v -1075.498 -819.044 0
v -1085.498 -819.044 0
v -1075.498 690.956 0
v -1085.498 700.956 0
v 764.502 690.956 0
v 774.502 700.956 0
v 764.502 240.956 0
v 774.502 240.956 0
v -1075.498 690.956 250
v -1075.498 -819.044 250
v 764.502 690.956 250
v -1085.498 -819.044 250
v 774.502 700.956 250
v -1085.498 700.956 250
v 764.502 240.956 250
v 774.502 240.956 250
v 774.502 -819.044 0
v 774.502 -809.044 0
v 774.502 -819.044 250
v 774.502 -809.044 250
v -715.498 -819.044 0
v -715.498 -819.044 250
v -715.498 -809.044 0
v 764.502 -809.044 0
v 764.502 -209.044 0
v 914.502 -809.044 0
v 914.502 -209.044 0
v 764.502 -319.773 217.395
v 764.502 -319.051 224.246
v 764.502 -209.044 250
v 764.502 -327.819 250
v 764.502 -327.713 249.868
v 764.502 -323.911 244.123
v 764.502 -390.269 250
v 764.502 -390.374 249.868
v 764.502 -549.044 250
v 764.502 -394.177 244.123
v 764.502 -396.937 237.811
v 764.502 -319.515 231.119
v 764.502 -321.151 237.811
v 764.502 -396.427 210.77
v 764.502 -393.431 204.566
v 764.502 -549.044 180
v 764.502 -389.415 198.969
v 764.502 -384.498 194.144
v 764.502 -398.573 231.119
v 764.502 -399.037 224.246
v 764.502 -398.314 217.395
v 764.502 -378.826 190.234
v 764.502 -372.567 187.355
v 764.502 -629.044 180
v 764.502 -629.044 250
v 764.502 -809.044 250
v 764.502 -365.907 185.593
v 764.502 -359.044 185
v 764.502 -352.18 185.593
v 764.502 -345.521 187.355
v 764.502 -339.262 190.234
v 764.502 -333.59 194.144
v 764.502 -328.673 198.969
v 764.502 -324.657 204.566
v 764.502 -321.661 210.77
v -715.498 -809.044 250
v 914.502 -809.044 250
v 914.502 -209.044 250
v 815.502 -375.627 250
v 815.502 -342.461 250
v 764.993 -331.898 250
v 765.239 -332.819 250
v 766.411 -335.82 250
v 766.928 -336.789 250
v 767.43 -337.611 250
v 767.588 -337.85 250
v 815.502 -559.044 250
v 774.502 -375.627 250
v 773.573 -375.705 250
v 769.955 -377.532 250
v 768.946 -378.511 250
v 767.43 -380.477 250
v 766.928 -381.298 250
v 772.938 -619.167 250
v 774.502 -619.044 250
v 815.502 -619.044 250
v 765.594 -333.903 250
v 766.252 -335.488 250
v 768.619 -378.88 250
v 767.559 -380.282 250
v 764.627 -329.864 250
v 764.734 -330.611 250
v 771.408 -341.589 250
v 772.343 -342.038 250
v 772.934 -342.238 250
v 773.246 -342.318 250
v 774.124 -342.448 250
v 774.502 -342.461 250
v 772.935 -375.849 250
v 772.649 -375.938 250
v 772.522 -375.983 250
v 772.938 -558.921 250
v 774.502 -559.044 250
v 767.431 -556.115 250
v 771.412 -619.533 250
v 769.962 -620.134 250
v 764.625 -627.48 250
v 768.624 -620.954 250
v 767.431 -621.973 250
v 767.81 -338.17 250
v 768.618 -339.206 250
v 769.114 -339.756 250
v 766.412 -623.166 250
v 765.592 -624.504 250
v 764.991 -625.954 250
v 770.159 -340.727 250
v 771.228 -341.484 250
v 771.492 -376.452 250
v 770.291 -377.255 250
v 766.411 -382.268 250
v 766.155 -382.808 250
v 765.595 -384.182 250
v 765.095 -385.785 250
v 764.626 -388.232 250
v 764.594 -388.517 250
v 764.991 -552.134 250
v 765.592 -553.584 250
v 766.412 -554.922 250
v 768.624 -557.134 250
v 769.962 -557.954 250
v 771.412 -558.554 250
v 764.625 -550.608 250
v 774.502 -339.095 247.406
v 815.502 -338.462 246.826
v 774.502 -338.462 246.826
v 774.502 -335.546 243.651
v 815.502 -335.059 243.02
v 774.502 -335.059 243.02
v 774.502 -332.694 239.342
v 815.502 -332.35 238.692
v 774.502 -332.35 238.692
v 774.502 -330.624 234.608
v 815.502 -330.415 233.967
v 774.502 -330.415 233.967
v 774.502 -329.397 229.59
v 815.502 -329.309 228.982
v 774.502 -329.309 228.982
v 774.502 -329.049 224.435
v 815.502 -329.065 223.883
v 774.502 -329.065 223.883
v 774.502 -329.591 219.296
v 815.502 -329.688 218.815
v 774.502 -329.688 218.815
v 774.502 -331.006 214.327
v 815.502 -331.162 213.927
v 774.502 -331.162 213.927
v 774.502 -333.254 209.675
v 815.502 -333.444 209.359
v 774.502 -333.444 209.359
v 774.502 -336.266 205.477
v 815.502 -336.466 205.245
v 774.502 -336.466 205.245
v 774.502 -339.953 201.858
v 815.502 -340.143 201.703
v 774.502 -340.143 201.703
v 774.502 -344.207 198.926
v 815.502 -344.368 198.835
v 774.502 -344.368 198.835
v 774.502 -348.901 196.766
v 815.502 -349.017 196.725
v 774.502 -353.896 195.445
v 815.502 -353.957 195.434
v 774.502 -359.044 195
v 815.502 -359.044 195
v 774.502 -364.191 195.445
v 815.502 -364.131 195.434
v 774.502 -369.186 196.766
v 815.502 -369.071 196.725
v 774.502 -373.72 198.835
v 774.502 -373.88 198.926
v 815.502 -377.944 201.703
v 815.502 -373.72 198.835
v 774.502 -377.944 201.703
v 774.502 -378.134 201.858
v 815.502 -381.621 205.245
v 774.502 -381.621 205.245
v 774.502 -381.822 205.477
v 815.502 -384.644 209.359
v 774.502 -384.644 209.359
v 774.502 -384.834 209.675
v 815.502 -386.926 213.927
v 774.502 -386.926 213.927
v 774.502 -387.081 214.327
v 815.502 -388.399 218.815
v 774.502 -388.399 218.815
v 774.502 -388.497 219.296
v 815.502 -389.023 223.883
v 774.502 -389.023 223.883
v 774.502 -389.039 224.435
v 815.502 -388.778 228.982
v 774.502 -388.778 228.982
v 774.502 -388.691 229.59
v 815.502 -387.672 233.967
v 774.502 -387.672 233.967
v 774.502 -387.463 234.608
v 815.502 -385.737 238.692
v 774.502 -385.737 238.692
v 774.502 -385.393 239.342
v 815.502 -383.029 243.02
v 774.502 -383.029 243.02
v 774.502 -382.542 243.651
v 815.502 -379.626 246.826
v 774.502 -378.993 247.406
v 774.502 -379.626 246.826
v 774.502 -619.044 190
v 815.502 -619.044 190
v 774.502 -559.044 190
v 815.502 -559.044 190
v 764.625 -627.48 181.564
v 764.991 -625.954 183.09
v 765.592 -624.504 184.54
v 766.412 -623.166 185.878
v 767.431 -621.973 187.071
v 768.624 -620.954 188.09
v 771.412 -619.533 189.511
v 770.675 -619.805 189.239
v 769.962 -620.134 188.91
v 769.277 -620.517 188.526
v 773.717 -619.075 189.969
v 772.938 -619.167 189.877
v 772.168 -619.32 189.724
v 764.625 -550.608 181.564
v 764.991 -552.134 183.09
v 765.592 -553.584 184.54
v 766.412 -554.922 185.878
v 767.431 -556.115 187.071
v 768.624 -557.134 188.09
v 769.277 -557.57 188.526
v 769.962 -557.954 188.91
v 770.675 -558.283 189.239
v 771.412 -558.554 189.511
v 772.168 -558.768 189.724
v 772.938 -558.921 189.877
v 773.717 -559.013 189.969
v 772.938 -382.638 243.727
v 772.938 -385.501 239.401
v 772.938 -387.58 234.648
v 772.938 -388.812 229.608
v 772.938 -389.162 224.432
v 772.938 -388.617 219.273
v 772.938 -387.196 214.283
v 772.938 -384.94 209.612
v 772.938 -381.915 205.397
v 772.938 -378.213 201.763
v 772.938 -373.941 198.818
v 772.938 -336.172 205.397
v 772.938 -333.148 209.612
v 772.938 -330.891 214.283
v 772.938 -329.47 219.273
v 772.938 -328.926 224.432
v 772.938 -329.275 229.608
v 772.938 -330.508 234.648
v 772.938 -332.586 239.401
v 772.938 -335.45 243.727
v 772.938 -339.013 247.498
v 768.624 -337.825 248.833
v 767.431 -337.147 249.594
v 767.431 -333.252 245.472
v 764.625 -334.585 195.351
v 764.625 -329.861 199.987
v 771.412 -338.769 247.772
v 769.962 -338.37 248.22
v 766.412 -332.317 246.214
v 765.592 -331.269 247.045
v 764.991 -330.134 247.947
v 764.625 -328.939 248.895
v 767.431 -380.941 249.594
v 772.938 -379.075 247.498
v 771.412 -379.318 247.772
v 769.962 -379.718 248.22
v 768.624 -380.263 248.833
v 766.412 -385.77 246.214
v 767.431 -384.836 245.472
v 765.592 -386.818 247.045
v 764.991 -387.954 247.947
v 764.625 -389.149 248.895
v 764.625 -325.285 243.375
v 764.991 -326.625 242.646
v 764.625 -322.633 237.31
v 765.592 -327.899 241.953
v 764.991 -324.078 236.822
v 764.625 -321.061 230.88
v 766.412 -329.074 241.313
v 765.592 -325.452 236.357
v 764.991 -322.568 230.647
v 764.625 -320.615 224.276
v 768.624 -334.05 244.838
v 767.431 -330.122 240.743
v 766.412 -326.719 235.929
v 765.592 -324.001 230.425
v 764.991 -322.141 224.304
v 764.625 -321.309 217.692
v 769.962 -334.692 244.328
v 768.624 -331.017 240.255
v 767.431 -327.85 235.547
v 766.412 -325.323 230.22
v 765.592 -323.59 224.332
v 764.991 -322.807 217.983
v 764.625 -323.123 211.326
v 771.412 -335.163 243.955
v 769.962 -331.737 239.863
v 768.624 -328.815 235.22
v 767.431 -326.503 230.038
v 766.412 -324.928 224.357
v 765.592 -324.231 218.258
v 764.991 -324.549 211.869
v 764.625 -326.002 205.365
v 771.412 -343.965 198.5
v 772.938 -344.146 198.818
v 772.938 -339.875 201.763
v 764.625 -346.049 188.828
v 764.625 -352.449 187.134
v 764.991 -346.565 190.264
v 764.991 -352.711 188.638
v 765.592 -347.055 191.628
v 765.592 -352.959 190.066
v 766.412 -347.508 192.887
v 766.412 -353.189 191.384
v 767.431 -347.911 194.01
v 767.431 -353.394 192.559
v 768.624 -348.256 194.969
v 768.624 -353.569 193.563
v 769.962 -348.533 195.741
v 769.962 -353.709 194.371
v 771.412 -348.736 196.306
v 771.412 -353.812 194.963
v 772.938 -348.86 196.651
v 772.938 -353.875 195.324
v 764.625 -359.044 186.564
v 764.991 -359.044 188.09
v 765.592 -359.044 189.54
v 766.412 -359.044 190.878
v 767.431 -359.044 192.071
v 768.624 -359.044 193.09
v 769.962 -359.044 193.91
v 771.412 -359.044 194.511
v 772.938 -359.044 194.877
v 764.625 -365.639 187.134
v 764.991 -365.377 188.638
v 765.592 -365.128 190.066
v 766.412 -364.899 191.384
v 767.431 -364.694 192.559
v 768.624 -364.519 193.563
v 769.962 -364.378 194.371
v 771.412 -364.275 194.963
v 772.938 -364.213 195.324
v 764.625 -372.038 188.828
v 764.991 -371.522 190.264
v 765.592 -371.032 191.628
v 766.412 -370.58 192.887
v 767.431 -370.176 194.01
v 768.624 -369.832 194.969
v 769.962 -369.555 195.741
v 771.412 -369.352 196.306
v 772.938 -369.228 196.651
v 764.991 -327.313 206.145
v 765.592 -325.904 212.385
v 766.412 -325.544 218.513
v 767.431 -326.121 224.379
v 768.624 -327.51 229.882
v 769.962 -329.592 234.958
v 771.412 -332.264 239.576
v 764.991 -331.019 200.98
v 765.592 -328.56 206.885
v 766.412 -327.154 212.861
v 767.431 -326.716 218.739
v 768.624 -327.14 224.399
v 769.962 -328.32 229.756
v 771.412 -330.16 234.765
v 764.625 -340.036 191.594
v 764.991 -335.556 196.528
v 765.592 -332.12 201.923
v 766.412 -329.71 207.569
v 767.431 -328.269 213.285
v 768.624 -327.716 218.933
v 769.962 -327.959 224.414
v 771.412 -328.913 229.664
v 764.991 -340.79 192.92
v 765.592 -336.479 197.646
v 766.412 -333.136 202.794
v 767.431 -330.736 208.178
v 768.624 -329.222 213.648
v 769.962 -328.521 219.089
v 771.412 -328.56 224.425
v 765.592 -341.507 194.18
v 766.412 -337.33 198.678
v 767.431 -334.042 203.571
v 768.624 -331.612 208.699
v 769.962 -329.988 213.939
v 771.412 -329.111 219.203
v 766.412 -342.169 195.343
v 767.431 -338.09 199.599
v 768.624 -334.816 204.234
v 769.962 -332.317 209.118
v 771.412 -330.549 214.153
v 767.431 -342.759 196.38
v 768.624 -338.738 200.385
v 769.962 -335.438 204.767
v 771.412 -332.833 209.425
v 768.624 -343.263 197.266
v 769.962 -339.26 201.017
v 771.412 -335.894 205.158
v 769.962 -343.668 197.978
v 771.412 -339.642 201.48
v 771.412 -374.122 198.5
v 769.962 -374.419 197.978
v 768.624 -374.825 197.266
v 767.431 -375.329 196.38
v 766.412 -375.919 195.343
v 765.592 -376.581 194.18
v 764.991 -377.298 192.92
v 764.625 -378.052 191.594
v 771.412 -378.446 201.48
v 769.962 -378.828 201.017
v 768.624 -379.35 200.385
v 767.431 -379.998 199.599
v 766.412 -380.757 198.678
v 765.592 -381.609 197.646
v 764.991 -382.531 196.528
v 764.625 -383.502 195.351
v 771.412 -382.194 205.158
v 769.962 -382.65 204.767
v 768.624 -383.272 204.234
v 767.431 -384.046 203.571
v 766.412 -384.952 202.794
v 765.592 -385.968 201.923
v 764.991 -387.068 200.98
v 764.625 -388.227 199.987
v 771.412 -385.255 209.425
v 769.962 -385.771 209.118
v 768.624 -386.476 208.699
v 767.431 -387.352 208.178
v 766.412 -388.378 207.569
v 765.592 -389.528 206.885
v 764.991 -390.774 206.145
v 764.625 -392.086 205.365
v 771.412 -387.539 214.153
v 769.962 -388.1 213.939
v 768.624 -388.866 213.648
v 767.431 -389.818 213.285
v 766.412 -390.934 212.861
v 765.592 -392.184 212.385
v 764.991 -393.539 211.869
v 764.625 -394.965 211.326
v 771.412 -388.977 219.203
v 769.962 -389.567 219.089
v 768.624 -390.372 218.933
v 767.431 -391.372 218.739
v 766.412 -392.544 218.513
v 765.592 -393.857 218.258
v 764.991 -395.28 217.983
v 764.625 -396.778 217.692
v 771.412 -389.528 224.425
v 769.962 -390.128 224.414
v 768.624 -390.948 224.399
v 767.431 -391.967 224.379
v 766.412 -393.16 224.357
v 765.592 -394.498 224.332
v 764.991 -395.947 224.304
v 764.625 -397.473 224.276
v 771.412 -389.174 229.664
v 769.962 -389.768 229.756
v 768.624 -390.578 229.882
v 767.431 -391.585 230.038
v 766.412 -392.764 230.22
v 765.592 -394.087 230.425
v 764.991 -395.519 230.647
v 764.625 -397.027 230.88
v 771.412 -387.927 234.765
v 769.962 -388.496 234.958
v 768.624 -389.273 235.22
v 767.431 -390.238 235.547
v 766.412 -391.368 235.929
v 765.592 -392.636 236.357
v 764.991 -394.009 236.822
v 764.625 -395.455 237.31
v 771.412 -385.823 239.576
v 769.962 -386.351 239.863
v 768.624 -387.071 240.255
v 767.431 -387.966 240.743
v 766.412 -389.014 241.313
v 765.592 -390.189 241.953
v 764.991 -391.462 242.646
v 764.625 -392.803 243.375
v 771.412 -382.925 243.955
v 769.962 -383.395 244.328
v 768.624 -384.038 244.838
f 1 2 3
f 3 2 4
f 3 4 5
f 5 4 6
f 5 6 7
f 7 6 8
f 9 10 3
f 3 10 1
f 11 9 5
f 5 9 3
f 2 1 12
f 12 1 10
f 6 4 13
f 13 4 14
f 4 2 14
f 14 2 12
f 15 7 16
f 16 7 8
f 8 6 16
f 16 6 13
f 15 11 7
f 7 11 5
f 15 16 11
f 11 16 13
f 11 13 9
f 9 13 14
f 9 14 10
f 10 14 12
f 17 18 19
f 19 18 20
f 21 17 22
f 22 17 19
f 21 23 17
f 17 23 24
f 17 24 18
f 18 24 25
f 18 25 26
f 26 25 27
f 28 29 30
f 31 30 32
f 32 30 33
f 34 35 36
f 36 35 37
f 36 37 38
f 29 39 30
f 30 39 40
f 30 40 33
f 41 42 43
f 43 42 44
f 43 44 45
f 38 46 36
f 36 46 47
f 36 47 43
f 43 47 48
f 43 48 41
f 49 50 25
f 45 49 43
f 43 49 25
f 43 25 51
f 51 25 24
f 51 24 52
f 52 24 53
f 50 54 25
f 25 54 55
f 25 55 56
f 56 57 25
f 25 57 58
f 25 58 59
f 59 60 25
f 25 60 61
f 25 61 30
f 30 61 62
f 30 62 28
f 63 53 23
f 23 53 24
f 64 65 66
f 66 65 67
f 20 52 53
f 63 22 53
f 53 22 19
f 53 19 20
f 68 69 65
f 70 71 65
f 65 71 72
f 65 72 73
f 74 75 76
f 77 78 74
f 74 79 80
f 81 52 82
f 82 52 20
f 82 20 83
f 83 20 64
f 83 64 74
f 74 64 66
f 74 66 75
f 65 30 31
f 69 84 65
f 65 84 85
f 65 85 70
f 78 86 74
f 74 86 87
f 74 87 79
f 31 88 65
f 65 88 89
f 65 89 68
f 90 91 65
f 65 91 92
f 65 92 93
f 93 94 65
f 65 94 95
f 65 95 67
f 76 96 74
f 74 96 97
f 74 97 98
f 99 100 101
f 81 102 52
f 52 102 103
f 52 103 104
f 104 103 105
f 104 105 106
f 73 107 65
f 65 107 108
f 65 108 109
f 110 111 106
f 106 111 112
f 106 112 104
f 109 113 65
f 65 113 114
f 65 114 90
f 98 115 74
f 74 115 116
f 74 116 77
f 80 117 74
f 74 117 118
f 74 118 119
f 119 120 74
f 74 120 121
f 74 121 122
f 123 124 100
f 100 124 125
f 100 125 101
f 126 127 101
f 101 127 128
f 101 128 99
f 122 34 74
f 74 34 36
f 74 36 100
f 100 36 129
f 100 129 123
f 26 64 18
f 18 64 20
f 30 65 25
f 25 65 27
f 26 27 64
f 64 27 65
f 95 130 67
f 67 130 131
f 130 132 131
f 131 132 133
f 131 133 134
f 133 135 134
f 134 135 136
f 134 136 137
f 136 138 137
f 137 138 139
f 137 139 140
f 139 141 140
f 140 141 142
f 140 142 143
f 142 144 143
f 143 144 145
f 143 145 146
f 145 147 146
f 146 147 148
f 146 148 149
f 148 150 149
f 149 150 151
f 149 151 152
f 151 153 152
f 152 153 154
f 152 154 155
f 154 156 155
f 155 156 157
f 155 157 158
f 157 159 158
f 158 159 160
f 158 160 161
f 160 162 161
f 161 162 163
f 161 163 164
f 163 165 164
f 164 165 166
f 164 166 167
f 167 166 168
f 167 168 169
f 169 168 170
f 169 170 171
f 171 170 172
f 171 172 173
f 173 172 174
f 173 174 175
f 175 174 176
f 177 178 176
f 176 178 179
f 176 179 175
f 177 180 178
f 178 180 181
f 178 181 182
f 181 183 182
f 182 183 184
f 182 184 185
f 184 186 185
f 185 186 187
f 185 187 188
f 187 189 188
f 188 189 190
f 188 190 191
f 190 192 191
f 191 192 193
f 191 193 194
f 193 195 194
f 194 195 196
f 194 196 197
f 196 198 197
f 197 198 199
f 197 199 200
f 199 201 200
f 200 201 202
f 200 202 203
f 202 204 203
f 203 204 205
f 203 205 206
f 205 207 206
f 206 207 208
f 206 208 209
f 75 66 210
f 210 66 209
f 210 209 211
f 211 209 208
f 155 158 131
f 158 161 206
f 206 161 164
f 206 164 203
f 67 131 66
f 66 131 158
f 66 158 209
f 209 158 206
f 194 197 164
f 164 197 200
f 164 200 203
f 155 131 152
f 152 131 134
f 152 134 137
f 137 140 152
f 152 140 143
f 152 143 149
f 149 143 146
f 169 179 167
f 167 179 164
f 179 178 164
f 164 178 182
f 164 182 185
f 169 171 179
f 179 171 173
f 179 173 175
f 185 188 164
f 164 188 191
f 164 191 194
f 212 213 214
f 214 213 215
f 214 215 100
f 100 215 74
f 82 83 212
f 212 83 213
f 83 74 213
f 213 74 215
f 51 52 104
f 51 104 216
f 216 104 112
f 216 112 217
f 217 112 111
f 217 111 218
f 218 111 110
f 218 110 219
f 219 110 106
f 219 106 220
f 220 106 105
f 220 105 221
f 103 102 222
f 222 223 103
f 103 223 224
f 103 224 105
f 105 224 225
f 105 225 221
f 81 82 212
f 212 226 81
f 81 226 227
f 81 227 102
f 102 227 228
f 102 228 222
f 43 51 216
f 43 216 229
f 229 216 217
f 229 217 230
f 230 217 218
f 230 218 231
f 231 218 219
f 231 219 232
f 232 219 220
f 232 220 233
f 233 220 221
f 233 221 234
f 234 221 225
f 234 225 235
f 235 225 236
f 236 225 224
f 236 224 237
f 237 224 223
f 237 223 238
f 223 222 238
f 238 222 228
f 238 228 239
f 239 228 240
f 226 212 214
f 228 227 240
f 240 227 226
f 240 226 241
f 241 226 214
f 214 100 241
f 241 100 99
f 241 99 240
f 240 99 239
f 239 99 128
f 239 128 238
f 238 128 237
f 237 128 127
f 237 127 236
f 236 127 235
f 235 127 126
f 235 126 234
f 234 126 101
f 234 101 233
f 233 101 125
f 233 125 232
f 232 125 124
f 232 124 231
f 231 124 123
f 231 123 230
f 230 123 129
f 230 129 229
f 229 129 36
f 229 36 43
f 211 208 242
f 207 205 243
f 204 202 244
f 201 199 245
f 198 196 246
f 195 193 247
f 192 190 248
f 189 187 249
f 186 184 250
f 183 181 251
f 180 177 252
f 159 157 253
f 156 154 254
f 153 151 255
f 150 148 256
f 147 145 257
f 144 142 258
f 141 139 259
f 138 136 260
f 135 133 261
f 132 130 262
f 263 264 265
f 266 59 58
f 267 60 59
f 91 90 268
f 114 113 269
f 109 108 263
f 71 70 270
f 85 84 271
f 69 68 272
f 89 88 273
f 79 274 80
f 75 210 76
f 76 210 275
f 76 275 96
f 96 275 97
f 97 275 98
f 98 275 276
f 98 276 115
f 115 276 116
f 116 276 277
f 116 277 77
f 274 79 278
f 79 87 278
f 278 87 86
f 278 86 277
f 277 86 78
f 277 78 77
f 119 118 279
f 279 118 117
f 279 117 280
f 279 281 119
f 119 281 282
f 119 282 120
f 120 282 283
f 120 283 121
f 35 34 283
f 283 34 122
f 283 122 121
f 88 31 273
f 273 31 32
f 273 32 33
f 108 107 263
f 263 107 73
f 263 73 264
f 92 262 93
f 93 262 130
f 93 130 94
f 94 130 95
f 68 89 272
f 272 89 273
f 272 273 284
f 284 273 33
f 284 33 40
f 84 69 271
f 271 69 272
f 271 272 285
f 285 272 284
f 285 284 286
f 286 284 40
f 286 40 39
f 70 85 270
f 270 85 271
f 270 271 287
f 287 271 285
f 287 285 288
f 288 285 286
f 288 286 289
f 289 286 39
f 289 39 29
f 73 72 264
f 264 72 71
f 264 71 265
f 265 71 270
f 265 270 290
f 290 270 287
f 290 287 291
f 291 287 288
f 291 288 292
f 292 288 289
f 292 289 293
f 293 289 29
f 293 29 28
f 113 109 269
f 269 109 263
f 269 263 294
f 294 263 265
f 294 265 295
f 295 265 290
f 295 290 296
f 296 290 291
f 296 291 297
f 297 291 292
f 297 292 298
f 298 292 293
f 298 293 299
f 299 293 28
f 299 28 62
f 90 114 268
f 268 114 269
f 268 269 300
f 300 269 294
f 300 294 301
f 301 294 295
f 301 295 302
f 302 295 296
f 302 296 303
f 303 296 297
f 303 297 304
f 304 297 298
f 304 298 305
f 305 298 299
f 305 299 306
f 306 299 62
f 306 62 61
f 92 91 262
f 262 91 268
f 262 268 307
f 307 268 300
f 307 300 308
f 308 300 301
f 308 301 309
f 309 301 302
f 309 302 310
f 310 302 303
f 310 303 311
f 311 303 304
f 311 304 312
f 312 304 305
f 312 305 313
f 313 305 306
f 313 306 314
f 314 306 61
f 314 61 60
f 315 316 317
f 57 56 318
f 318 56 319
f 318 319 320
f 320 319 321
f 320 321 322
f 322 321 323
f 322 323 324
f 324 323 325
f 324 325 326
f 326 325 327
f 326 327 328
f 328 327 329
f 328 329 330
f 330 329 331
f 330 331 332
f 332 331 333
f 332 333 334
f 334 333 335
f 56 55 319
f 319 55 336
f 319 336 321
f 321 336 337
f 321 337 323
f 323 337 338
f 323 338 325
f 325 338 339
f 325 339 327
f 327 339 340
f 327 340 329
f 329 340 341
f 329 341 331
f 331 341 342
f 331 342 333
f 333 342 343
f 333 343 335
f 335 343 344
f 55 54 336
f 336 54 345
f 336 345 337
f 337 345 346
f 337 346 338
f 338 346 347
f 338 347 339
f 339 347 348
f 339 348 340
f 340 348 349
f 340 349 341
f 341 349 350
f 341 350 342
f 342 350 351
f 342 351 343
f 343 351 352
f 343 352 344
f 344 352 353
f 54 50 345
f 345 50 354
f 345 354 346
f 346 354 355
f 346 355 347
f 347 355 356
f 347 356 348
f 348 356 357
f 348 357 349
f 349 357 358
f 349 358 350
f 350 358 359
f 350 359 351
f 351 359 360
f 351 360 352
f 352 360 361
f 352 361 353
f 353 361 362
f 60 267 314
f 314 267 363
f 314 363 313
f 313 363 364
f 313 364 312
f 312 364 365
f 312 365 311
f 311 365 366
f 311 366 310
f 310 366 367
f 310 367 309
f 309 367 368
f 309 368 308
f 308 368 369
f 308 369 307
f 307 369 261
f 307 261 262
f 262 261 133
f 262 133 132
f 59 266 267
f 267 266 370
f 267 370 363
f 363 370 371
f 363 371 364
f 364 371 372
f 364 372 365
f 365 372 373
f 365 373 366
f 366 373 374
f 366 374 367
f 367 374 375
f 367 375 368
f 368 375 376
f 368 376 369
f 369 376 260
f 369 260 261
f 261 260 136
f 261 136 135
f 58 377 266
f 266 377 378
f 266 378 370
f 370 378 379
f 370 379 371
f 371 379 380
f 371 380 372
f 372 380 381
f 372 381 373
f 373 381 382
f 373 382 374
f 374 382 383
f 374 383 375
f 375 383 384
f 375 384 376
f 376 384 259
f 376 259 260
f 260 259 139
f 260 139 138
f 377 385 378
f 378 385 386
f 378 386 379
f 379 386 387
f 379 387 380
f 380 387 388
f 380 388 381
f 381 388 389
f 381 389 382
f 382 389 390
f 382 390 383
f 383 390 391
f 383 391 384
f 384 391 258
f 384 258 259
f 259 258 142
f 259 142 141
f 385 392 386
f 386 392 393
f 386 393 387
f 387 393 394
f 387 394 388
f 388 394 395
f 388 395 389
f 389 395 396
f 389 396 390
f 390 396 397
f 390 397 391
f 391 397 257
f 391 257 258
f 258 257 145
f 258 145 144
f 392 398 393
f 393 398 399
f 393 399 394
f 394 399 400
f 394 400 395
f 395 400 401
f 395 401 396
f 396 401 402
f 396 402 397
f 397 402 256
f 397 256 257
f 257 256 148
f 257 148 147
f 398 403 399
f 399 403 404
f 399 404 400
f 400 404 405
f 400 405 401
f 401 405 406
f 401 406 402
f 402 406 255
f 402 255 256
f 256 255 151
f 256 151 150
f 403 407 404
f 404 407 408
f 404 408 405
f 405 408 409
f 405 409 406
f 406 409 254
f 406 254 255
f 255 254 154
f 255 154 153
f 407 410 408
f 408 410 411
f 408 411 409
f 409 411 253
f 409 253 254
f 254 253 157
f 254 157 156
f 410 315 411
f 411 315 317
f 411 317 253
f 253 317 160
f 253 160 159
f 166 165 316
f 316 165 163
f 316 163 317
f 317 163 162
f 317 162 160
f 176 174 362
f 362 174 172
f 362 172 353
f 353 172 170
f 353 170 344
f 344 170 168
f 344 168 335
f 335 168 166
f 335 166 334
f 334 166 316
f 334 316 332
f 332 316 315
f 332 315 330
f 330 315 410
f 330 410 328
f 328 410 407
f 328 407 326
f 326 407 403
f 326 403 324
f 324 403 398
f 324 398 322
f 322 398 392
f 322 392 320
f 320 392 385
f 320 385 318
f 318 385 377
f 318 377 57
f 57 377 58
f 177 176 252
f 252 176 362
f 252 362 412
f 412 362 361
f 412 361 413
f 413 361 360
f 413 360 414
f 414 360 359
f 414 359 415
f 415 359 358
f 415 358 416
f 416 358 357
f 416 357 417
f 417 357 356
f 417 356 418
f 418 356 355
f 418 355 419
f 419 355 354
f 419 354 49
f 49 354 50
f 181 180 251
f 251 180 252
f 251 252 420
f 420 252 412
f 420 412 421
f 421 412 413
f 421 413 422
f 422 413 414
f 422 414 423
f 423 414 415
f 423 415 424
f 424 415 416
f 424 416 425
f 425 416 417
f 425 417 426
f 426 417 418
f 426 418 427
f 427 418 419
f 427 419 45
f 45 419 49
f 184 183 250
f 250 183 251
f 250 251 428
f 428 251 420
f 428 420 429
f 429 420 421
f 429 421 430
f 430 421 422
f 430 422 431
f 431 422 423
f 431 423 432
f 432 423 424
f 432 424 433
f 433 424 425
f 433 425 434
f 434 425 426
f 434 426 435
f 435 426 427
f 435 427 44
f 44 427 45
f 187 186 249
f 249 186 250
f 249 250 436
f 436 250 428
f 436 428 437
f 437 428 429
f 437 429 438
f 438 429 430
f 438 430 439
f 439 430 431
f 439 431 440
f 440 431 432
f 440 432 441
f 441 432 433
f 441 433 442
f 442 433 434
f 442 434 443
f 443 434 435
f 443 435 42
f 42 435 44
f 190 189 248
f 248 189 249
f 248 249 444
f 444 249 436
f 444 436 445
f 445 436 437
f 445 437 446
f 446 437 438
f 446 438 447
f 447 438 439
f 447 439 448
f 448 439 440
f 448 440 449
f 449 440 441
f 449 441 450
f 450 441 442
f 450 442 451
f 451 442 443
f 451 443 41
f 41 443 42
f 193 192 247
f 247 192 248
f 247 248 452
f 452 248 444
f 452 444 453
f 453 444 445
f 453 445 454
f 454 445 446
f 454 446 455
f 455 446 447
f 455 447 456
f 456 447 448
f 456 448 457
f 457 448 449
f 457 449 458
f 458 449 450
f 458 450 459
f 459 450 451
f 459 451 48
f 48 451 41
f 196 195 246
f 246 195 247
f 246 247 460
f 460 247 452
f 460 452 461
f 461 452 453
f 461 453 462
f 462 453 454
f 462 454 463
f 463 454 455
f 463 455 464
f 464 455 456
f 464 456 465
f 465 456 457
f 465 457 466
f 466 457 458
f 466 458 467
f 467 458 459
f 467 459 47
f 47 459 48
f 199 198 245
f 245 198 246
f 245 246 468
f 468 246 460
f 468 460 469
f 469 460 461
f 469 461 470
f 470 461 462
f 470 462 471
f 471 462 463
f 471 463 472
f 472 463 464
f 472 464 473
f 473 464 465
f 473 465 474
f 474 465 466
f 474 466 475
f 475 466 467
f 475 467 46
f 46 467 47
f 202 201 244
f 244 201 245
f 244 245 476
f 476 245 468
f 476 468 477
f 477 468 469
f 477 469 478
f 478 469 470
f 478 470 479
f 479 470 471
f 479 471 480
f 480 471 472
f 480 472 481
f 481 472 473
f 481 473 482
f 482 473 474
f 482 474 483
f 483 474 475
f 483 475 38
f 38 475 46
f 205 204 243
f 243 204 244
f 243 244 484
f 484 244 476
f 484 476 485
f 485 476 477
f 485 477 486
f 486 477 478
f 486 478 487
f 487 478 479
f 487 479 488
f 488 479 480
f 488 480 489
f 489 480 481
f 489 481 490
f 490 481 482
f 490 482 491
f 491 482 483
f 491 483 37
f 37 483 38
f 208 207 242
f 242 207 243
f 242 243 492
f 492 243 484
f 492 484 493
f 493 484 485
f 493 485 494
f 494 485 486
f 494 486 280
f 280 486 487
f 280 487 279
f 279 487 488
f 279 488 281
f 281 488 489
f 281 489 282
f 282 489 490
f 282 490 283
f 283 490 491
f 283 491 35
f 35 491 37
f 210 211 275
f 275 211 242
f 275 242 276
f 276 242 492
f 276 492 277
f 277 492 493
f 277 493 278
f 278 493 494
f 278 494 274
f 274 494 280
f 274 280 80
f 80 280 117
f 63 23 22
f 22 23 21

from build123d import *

# Parameters (mm, degrees)
SKETCH2_W           = 1860
SKETCH2_H           = 1520
BOSS_EXTRUDE1_DEPTH = 260
SKETCH3_W           = 1840
SKETCH3_H           = 1500
CUT_EXTRUDE1_DEPTH  = 250
SKETCH5_W           = 250
SKETCH5_H           = 600
BOSS_EXTRUDE2_DEPTH = 140
CUT_EXTRUDE2_DEPTH  = 51
SKETCH7_W           = 60
SKETCH7_H           = 60
CUT_EXTRUDE3_DEPTH  = 51
FILLET1_R           = 10
SKETCH8_W           = 360
SKETCH8_H           = 250
CUT_EXTRUDE4_DEPTH  = 10
SKETCH9_W           = 250
SKETCH9_H           = 450
CUT_EXTRUDE5_DEPTH  = 10
SKETCH10_W          = 1860
SKETCH10_H          = 1520
CUT_EXTRUDE6_DEPTH  = 10


with BuildPart() as part:
    # Sketch2 → Boss-Extrude1 (new body)
    with BuildSketch(Plane.XY):
        with Locations((-155.498007968, -59.043824701)):
            Rectangle(SKETCH2_W, SKETCH2_H)
    extrude(amount=BOSS_EXTRUDE1_DEPTH)

    # Sketch3 → Cut-Extrude1 (cut)
    with BuildSketch(Plane(origin=(0, 0, 0), x_dir=(-1, 0, 0), z_dir=(0, 0, -1))):
        with Locations((155.498007968, -59.043824701)):
            Rectangle(SKETCH3_W, SKETCH3_H)
    extrude(amount=-CUT_EXTRUDE1_DEPTH, mode=Mode.SUBTRACT)

    # Sketch5 → Boss-Extrude2 (add)
    with BuildSketch(Plane(origin=(774.501992032, 0, 0), x_dir=(0, 0, -1), z_dir=(1, 0, 0))):
        with Locations((-125, -509.043824701)):
            Rectangle(SKETCH5_W, SKETCH5_H)
    extrude(amount=BOSS_EXTRUDE2_DEPTH)

    # Sketch6 → Cut-Extrude2 (cut)
    with BuildSketch(Plane.ZY.offset(-764.501992032)):
        with BuildLine():
            ThreePointArc((250, -342.460700749), (195, -359.043824701), (250, -375.626948653))
            Line((250, -375.626948653), (250, -342.460700749))
        make_face()
    extrude(amount=-CUT_EXTRUDE2_DEPTH, mode=Mode.SUBTRACT)

    # Sketch7 → Cut-Extrude3 (cut)
    with BuildSketch(Plane.ZY.offset(-764.501992032)):
        with Locations((220, -589.043824701)):
            Rectangle(SKETCH7_W, SKETCH7_H)
    extrude(amount=-CUT_EXTRUDE3_DEPTH, mode=Mode.SUBTRACT)

    # Fillet1
    fillet1_edges = [part.edges().sort_by_distance(p)[0] for p in [
        (764.501992032, -559.043824701, 220),
        (764.501992032, -589.043824701, 190),
        (764.501992032, -619.043824701, 220),
        (764.501992032, -359.043824701, 195),
    ]]
    fillet(fillet1_edges, radius=FILLET1_R)

    # Sketch8 → Cut-Extrude4 (cut)
    with BuildSketch(Plane.XZ.offset(819.043824701)):
        with Locations((-895.498007968, 125)):
            Rectangle(SKETCH8_W, SKETCH8_H)
    extrude(amount=-CUT_EXTRUDE4_DEPTH, mode=Mode.SUBTRACT)

    # Sketch9 → Cut-Extrude5 (cut)
    with BuildSketch(Plane(origin=(774.501992032, 0, 0), x_dir=(0, 0, -1), z_dir=(1, 0, 0))):
        with Locations((-125, 15.956175299)):
            Rectangle(SKETCH9_W, SKETCH9_H)
    extrude(amount=-CUT_EXTRUDE5_DEPTH, mode=Mode.SUBTRACT)

    # Sketch10 → Cut-Extrude6 (cut)
    with BuildSketch(Plane.XY.offset(260)):
        with Locations((-155.498007968, -59.043824701)):
            Rectangle(SKETCH10_W, SKETCH10_H)
    extrude(amount=-CUT_EXTRUDE6_DEPTH, mode=Mode.SUBTRACT)


with BuildPart() as cut_extrude6_piece_1:
    # of the separate pieces the step leaves, piece 1, a body of its own (cut_extrude6_pieces)
    add(part.part.solids().sort_by_distance((764.501992032, -327.818834709, 250))[0])


with BuildPart() as cut_extrude6_piece_2:
    # of the separate pieces the step leaves, piece 2, a body of its own (cut_extrude6_pieces)
    add(part.part.solids().sort_by_distance((774.501992032, 240.956175299, 0))[0])


solid = Compound([cut_extrude6_piece_1.part, cut_extrude6_piece_2.part])
